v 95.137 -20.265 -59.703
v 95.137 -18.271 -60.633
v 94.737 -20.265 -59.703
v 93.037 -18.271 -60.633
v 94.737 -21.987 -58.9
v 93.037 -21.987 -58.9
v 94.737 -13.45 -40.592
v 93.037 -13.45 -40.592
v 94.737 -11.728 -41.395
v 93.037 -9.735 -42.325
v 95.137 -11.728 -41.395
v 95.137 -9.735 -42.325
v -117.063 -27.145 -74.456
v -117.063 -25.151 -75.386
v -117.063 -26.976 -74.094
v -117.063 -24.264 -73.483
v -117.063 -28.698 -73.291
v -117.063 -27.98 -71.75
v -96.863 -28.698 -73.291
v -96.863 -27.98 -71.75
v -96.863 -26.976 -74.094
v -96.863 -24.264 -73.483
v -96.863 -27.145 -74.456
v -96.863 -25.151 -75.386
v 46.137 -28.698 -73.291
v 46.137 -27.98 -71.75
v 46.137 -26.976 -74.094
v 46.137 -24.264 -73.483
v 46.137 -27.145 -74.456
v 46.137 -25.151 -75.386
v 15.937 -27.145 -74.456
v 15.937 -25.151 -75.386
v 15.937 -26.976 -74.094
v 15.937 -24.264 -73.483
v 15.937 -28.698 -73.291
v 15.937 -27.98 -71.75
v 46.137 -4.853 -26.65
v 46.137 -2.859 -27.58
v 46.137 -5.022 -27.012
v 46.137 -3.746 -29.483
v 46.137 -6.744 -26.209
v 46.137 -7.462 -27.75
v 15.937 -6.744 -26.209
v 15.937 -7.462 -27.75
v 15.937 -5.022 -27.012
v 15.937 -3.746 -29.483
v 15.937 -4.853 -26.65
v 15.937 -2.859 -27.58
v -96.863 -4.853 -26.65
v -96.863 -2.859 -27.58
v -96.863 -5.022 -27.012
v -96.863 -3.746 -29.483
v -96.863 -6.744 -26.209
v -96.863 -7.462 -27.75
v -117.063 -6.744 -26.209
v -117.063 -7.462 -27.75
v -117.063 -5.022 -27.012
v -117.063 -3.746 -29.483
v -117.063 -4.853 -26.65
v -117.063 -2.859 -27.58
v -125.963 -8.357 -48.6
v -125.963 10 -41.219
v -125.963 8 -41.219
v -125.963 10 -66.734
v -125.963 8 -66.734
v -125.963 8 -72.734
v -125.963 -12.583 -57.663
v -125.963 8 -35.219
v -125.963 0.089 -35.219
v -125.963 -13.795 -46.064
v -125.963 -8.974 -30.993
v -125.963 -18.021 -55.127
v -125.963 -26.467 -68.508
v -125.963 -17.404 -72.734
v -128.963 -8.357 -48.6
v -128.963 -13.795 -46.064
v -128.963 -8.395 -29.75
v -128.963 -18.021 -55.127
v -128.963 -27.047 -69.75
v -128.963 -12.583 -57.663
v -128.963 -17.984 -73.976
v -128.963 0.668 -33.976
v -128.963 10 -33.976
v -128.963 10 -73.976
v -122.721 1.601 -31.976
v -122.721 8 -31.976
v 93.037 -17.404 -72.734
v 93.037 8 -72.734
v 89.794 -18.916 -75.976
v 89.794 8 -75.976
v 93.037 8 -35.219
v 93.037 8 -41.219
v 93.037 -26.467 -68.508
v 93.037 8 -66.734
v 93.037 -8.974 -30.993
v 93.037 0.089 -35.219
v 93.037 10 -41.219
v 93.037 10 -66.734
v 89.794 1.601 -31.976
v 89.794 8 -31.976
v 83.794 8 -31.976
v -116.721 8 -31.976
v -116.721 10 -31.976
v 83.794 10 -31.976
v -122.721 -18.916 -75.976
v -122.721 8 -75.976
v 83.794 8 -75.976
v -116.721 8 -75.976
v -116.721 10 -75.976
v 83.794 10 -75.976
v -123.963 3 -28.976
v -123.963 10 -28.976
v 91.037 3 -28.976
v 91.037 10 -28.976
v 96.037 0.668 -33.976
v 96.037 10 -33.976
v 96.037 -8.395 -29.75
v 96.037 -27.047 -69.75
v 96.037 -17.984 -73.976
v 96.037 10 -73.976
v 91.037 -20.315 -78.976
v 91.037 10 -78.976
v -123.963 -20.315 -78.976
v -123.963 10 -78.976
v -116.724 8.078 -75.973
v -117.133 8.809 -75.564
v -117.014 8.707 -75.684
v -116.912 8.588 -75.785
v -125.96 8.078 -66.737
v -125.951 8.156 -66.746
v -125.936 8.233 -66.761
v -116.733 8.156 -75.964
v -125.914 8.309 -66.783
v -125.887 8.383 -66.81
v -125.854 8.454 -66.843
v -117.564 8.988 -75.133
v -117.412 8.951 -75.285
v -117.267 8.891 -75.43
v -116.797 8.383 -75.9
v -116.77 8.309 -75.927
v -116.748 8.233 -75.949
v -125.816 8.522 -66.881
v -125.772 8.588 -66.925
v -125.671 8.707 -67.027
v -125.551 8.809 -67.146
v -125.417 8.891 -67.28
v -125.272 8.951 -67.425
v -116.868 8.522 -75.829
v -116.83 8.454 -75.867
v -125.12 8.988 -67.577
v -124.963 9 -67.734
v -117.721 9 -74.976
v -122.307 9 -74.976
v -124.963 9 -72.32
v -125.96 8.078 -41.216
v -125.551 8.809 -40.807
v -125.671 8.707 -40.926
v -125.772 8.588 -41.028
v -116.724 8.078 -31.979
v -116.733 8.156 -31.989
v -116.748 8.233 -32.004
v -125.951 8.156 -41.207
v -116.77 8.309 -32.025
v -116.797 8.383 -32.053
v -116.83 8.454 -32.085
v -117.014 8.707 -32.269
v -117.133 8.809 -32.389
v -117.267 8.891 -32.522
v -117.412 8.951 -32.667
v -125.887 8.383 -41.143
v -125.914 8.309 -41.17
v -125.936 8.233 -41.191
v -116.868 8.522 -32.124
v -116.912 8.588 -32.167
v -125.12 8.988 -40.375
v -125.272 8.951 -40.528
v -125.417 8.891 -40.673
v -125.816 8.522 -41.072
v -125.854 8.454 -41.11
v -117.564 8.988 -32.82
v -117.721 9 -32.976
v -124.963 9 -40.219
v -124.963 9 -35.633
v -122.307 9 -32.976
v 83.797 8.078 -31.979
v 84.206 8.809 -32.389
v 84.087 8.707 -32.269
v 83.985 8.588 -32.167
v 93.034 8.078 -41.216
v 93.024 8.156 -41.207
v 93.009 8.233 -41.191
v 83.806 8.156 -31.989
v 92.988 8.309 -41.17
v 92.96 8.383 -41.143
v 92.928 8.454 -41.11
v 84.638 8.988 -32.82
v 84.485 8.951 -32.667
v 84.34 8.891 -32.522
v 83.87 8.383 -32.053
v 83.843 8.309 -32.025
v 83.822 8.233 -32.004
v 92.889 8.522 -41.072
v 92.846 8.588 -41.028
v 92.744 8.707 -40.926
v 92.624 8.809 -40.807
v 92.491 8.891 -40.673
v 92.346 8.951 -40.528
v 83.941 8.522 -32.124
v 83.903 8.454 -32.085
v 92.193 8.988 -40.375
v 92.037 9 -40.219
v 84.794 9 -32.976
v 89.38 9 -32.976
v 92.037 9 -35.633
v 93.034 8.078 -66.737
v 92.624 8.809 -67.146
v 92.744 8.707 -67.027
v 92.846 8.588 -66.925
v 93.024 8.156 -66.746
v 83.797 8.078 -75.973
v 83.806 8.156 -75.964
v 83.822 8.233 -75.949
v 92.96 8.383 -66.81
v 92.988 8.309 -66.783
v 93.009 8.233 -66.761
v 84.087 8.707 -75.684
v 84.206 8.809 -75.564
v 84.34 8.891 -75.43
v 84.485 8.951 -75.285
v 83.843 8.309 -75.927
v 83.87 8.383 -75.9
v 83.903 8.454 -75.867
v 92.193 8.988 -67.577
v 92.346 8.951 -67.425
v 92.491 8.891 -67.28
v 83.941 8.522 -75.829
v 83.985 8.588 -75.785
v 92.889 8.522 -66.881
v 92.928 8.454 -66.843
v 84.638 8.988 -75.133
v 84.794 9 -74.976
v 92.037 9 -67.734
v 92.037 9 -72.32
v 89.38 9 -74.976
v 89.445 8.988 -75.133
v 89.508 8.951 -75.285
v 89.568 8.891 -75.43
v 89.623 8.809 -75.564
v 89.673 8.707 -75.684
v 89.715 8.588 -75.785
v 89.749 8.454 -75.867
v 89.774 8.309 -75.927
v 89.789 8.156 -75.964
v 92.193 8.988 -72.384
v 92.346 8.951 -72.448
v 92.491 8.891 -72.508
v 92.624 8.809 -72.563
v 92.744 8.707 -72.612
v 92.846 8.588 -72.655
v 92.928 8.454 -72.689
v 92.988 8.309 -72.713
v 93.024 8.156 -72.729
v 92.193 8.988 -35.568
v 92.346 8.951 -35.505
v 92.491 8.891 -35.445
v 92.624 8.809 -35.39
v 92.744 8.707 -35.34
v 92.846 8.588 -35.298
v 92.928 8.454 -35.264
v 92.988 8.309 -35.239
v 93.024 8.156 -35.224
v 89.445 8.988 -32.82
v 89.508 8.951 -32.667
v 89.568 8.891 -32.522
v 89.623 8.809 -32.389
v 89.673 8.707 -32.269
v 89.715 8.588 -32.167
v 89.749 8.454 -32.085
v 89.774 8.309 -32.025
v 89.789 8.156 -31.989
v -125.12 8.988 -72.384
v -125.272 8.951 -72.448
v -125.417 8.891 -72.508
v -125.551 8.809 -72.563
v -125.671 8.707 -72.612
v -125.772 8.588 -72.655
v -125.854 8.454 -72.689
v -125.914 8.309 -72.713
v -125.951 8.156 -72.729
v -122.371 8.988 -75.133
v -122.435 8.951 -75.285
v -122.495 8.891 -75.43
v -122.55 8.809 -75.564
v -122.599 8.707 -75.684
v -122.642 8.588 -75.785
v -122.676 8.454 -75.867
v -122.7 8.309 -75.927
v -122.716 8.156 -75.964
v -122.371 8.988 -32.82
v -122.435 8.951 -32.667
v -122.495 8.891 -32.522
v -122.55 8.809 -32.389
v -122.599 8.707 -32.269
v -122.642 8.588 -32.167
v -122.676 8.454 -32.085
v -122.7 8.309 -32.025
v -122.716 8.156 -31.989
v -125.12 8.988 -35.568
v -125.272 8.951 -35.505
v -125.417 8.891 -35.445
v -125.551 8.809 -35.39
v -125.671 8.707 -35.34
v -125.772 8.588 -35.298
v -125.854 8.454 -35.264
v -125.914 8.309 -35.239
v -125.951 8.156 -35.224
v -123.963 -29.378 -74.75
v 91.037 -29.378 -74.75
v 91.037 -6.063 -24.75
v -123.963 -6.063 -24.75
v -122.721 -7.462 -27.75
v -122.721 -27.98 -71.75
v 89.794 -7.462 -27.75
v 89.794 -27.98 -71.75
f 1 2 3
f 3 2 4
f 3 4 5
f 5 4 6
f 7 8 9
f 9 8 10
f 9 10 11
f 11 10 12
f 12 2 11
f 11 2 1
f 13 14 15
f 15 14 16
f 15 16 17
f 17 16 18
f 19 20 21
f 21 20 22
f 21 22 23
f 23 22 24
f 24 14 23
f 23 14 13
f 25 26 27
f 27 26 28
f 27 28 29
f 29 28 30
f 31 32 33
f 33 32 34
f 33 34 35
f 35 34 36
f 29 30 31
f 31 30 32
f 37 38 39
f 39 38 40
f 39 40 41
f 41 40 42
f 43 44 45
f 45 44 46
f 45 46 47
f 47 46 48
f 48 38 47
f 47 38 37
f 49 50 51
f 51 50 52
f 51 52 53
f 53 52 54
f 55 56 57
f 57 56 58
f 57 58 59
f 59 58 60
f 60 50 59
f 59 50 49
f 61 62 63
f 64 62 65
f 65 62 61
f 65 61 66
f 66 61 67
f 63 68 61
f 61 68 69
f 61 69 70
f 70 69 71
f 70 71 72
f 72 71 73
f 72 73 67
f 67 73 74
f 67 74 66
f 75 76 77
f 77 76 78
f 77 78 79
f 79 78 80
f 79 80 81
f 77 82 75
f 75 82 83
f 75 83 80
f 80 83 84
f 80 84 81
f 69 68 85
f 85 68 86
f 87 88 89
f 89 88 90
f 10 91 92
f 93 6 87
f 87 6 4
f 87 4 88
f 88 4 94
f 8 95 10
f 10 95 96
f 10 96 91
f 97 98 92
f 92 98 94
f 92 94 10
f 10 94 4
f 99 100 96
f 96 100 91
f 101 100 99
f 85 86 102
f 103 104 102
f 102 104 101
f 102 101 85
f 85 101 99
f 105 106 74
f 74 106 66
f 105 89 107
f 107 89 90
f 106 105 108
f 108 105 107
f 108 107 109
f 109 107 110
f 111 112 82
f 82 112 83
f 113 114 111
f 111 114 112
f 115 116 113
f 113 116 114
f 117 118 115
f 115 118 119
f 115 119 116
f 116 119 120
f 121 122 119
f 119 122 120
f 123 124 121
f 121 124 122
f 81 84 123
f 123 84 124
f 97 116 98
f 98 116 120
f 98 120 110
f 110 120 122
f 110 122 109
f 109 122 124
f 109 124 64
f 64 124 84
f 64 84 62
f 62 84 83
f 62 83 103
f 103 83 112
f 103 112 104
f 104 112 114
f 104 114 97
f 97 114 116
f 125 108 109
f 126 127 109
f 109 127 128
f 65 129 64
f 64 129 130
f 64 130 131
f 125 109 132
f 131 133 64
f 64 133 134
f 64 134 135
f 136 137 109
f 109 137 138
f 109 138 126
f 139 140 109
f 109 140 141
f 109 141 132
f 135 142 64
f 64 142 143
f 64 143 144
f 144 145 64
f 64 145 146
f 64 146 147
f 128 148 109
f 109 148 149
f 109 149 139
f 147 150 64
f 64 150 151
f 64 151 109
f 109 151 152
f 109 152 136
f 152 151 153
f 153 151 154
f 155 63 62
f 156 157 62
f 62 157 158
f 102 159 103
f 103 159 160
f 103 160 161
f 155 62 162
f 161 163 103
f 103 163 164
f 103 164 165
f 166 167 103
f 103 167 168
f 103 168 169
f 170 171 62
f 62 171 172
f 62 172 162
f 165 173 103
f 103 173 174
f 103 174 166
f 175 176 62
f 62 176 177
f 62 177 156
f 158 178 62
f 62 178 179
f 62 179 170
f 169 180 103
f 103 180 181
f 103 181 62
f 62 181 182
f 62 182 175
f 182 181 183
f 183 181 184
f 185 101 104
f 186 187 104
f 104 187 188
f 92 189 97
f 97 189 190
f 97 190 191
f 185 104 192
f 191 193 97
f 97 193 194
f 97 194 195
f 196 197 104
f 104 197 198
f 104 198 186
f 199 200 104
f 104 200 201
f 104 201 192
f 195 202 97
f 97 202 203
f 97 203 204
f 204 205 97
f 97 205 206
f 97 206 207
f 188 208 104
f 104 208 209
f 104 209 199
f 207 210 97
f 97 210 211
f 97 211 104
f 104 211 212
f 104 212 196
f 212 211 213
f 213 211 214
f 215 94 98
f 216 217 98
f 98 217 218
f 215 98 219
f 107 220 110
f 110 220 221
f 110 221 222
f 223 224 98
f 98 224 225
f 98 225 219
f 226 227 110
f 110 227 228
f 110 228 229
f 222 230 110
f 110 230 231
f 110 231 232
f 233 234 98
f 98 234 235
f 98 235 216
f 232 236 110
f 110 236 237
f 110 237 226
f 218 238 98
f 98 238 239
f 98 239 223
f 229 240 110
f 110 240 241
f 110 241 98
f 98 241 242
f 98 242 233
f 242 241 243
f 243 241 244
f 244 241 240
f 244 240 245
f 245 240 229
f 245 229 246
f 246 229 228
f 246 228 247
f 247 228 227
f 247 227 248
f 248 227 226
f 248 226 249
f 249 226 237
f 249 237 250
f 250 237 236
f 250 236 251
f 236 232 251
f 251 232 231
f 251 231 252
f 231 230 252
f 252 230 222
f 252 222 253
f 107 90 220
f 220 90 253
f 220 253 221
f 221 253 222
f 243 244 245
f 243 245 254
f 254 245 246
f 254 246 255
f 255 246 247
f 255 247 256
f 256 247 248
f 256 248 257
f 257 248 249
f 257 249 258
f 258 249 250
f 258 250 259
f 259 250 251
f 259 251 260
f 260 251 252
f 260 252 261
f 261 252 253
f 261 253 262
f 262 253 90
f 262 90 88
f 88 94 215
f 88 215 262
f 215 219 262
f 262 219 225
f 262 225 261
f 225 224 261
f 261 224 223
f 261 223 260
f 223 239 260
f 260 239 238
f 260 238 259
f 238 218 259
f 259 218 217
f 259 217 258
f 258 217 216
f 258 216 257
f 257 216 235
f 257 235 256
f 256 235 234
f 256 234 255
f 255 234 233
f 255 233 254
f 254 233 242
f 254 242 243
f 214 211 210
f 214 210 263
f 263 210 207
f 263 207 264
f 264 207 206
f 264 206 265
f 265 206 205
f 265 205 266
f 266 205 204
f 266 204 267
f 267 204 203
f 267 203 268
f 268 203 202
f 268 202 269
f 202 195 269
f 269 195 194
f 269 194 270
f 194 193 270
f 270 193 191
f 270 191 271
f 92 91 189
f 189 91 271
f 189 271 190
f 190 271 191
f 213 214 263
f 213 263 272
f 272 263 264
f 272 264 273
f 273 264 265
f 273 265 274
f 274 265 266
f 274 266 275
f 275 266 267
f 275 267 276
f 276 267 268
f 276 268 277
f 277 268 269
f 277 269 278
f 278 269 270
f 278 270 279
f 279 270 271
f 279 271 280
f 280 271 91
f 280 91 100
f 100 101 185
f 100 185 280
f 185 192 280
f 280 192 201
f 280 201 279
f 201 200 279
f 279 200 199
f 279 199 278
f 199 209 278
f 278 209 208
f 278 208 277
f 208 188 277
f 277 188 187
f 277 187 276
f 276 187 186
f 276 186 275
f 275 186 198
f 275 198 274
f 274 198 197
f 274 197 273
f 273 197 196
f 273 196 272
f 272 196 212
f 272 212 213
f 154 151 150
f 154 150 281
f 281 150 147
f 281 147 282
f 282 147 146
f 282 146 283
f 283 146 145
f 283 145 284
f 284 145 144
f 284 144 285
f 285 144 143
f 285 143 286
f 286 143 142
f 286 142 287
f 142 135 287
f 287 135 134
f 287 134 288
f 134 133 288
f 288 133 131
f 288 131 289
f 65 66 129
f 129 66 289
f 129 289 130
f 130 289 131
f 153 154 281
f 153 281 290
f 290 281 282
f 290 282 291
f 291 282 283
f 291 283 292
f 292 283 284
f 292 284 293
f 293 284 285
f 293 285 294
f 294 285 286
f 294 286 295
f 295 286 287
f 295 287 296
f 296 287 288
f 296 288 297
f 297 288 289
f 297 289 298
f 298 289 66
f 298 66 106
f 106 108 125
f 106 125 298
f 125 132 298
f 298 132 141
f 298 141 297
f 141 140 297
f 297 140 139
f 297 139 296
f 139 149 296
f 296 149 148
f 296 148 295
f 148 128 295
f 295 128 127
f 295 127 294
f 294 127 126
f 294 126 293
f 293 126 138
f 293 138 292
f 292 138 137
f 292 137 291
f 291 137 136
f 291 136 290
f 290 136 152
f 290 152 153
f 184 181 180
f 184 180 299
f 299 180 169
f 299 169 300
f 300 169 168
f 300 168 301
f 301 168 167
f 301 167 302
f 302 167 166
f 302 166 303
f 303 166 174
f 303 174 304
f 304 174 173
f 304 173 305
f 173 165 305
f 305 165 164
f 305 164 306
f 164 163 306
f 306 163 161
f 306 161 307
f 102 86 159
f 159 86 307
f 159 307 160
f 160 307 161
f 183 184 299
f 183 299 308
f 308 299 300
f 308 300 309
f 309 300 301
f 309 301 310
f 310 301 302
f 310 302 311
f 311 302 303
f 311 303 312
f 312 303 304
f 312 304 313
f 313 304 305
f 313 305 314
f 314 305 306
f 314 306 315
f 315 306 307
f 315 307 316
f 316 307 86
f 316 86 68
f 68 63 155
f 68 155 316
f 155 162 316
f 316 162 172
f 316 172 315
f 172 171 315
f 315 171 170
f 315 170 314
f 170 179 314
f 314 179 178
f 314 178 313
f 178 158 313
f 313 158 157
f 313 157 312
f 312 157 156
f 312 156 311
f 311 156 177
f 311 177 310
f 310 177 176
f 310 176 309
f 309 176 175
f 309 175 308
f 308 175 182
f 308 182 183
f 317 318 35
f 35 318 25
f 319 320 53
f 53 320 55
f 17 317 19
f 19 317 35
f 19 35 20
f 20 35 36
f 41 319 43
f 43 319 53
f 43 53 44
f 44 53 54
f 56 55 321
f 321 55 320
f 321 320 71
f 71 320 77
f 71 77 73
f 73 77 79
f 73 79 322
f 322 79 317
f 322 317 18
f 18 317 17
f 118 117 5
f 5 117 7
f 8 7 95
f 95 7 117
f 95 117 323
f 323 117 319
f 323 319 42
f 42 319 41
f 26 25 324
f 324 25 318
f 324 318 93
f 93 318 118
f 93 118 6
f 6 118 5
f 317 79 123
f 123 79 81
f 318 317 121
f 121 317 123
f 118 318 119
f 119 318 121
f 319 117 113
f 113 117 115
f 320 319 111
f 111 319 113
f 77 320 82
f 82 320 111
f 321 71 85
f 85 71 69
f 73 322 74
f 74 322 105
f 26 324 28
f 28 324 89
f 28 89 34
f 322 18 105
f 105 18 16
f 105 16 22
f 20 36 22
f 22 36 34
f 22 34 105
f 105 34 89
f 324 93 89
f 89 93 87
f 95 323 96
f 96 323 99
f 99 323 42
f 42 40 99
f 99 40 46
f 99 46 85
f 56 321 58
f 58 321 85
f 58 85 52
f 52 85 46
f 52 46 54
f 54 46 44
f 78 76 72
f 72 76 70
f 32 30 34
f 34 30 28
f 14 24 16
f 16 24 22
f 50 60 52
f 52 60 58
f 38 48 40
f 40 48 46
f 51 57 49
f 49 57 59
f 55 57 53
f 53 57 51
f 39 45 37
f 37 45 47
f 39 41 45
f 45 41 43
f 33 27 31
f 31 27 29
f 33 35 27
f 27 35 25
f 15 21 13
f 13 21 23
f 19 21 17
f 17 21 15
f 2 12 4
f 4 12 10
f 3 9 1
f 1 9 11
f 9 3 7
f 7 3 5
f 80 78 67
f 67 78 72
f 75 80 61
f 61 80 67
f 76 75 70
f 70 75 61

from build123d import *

# Parameters (mm, degrees)
SALIENTE_EXTRUIR2_DEPTH = 3
SALIENTE_EXTRUIR3_DEPTH = 7
CORTAR_EXTRUIR1_DEPTH   = 19
CROQUIS5_W              = 231.218781219
CROQUIS5_H              = 62.937062938
CORTAR_EXTRUIR2_DEPTH   = 3
SALIENTE_EXTRUIR4_DEPTH = 35
SALIENTE_EXTRUIR5_DEPTH = 1
REDONDEO4_R             = 1
CORTAR_EXTRUIR3_DEPTH   = 237
SALIENTE_EXTRUIR6_DEPTH = 10
CORTAR_EXTRUIR4_DEPTH   = 10
CROQUIS14_W             = 20.2
CROQUIS14_H             = 4.1
CROQUIS14_W_2           = 30.2
CORTAR_EXTRUIR5_DEPTH   = 2.1
CROQUIS15_W             = 30.2
CROQUIS15_H             = 4.1
CROQUIS15_W_2           = 20.2
CORTAR_EXTRUIR6_DEPTH   = 2.1
CROQUIS16_W             = 20.2
CROQUIS16_H             = 1.9
CROQUIS16_W_2           = 30.2
SALIENTE_EXTRUIR7_DEPTH = 0.4
CROQUIS17_W             = 30.2
CROQUIS17_H             = 1.9
CROQUIS17_W_2           = 20.2
SALIENTE_EXTRUIR8_DEPTH = 0.4
CORTAR_EXTRUIR7_DEPTH   = 2.1
SALIENTE_EXTRUIR9_DEPTH = 0.4
CORTAR_EXTRUIR8_DEPTH   = 10


with BuildPart() as part:
    # Croquis2 → Saliente-Extruir2 (new body)
    with BuildSketch(Plane(origin=(0, 0, 0), x_dir=(1, 0, 0), z_dir=(0, 1, 0))):
        Polygon((-128.963414634, 73.976399667), (-123.963414634, 78.976399667), (91.036585366, 78.976399667), (96.036585366, 73.976399667), (96.036585366, 33.976399667), (91.036585366, 28.976399667), (-123.963414634, 28.976399667), (-128.963414634, 33.976399667), align=None)
    extrude(amount=SALIENTE_EXTRUIR2_DEPTH)

    # Croquis3 → Saliente-Extruir3 (add)
    with BuildSketch(Plane(origin=(0, 3, 0), x_dir=(1, 0, 0), z_dir=(0, 1, 0))):
        Polygon((-123.963414634, 78.976399667), (-128.963414634, 73.976399667), (-128.963414634, 33.976399667), (-123.963414634, 28.976399667), (91.036585366, 28.976399667), (96.036585366, 33.976399667), (96.036585366, 73.976399667), (91.036585366, 78.976399667), align=None)
        Polygon((90.208158241, 76.976399667), (-123.134987509, 76.976399667), (-126.963414634, 73.147972543), (-126.963414634, 34.804826792), (-123.134987509, 30.976399667), (90.208158241, 30.976399667), (94.036585366, 34.804826792), (94.036585366, 73.147972543), align=None, mode=Mode.SUBTRACT)
    extrude(amount=SALIENTE_EXTRUIR3_DEPTH)

    # Croquis4 → Cortar-Extruir1 (cut)
    with BuildSketch(Plane.XZ):
        with BuildLine():
            ThreePointArc((-103.963414634, -47.176399667), (-106.438288368, -48.201525933), (-107.463414634, -50.676399667))
            Line((-107.463414634, -50.676399667), (-103.963414634, -50.676399667))
            Line((-103.963414634, -50.676399667), (-103.963414634, -47.176399667))
        make_face()
        with BuildLine():
            Line((-103.963414634, -50.676399667), (-107.463414634, -50.676399667))
            ThreePointArc((-107.463414634, -50.676399667), (-106.438288368, -53.151273402), (-103.963414634, -54.176399667))
            Line((-103.963414634, -54.176399667), (-103.963414634, -50.676399667))
        make_face()
        with BuildLine():
            Line((-103.963414634, -47.176399667), (-103.963414634, -50.676399667))
            Line((-103.963414634, -50.676399667), (-100.463414634, -50.676399667))
            ThreePointArc((-100.463414634, -50.676399667), (-101.4885409, -48.201525933), (-103.963414634, -47.176399667))
        make_face()
        with BuildLine():
            Line((-100.463414634, -50.676399667), (-103.963414634, -50.676399667))
            Line((-103.963414634, -50.676399667), (-103.963414634, -54.176399667))
            ThreePointArc((-103.963414634, -54.176399667), (-101.4885409, -53.151273402), (-100.463414634, -50.676399667))
        make_face()
    extrude(amount=-CORTAR_EXTRUIR1_DEPTH, mode=Mode.SUBTRACT)

    # Croquis5 → Cortar-Extruir2 (cut)
    with BuildSketch(Plane.XZ):
        with Locations((-15.039838211, -54.605736692)):
            Rectangle(CROQUIS5_W, CROQUIS5_H)
    extrude(amount=-CORTAR_EXTRUIR2_DEPTH, mode=Mode.SUBTRACT)

    # Croquis6 → Saliente-Extruir4 (add)
    with BuildSketch(Plane(origin=(0, 10, 0), x_dir=(1, 0, 0), z_dir=(0, 1, 0))):
        Polygon((-128.963414634, 33.976399667), (-123.963414634, 28.976399667), (91.036585366, 28.976399667), (96.036585366, 33.976399667), (96.036585366, 73.976399667), (91.036585366, 78.976399667), (-123.963414634, 78.976399667), (-128.963414634, 73.976399667), align=None)
        Polygon((93.036585366, 35.219040355), (89.793944679, 31.976399667), (-122.720773947, 31.976399667), (-125.963414634, 35.219040355), (-125.963414634, 72.73375898), (-122.720773947, 75.976399667), (89.793944679, 75.976399667), (93.036585366, 72.73375898), align=None, mode=Mode.SUBTRACT)
    extrude(amount=-SALIENTE_EXTRUIR4_DEPTH)

    # Croquis7 → Saliente-Extruir5 (add)
    with BuildSketch(Plane(origin=(0, 10, 0), x_dir=(1, 0, 0), z_dir=(0, 1, 0))):
        Polygon((-125.963414634, 66.73375898), (-116.720773947, 75.976399667), (-122.720773947, 75.976399667), (-125.963414634, 72.73375898), align=None)
        Polygon((-125.963414634, 41.219040355), (-116.720773947, 31.976399667), (-122.720773947, 31.976399667), (-125.963414634, 35.219040355), align=None)
        Polygon((93.036585366, 41.219040355), (83.793944679, 31.976399667), (89.793944679, 31.976399667), (93.036585366, 35.219040355), align=None)
        Polygon((83.793944679, 75.976399667), (93.036585366, 66.73375898), (93.036585366, 72.73375898), (89.793944679, 75.976399667), align=None)
    extrude(amount=-SALIENTE_EXTRUIR5_DEPTH)

    # Redondeo4
    redondeo4_edges = [part.edges().sort_by_distance(p)[0] for p in [
        (-125.963414634, 9, -69.73375898),
        (-124.342094291, 9, -74.355079324),
        (-119.720773947, 9, -75.976399667),
        (-125.963414634, 9, -38.219040355),
        (-119.720773947, 9, -31.976399667),
        (-124.342094291, 9, -33.597720011),
        (93.036585366, 9, -38.219040355),
        (91.415265022, 9, -33.597720011),
        (86.793944679, 9, -31.976399667),
        (86.793944679, 9, -75.976399667),
        (91.415265022, 9, -74.355079324),
        (93.036585366, 9, -69.73375898),
    ]]
    fillet(redondeo4_edges, radius=REDONDEO4_R)

    # Croquis8 → Cortar-Extruir3 (cut)
    with BuildSketch(Plane.ZY.offset(128.963414634)):
        Polygon((-73.976399667, -25), (-73.976399667, -17.983844617), (-78.976399667, -20.315382908), (-78.976399667, -25), align=None)
        Polygon((-33.976399667, -25), (-33.976399667, 0.668461709), (-73.976399667, -17.983844617), (-73.976399667, -25), align=None)
        Polygon((-28.976399667, -25), (-28.976399667, 3), (-33.976399667, 0.668461709), (-33.976399667, -25), align=None)
    extrude(amount=-CORTAR_EXTRUIR3_DEPTH, mode=Mode.SUBTRACT)

    # Croquis9 → Saliente-Extruir6 (add)
    with BuildSketch(Plane(origin=(0, 13.562786388, -6.324431159), x_dir=(1, 0, 0), z_dir=(0, -0.906307787, 0.422618262))):
        Polygon((-128.963414634, -30.510571468), (-123.963414634, -24.993681874), (91.036585366, -24.993681874), (96.036585366, -30.510571468), (96.036585366, -74.645688227), (91.036585366, -80.162577822), (-123.963414634, -80.162577822), (-128.963414634, -74.645688227), align=None)
        Polygon((-125.963414634, -31.881673764), (-125.963414634, -73.274585932), (-122.720773947, -76.852444065), (89.793944679, -76.852444065), (93.036585366, -73.274585932), (93.036585366, -31.881673764), (89.793944679, -28.303815631), (-122.720773947, -28.303815631), align=None, mode=Mode.SUBTRACT)
    extrude(amount=SALIENTE_EXTRUIR6_DEPTH)

    # Croquis13 → Cortar-Extruir4 (cut)
    with BuildSketch(Plane.ZY.offset(128.963414634)):
        Polygon((-52.034030749, -12.823115041), (-50.595453573, -15.90815375), (-46.970222425, -14.217680703), (-48.408799601, -11.132641994), align=None)
        Polygon((-55.659261897, -14.513588088), (-54.220684722, -17.598626797), (-50.595453573, -15.90815375), (-52.034030749, -12.823115041), align=None)
    extrude(amount=-CORTAR_EXTRUIR4_DEPTH, mode=Mode.SUBTRACT)

    # Croquis14 → Cortar-Extruir5 (cut)
    with BuildSketch(Plane(origin=(0, -32.479246321, -69.651968509), x_dir=(1, 0, 0), z_dir=(0, 0.422618262, 0.906307787))):
        with Locations((-106.963414634, 7.01487902)):
            Rectangle(CROQUIS14_W, CROQUIS14_H)
        with Locations((31.036585366, 7.01487902)):
            Rectangle(CROQUIS14_W_2, CROQUIS14_H)
    extrude(amount=-CORTAR_EXTRUIR5_DEPTH, mode=Mode.SUBTRACT)

    # Croquis15 → Cortar-Extruir6 (cut)
    with BuildSketch(Plane(origin=(0, -11.961709362, -25.651968509), x_dir=(-1, 0, 0), z_dir=(0, -0.422618262, -0.906307787))):
        with Locations((-31.036585366, 7.01487902)):
            Rectangle(CROQUIS15_W, CROQUIS15_H)
        with Locations((106.963414634, 7.01487902)):
            Rectangle(CROQUIS15_W_2, CROQUIS15_H)
    extrude(amount=-CORTAR_EXTRUIR6_DEPTH, mode=Mode.SUBTRACT)

    # Croquis16 → Saliente-Extruir7 (add)
    with BuildSketch(Plane(origin=(0, -11.074211013, -23.748722156), x_dir=(-1, 0, 0), z_dir=(0, -0.422618262, -0.906307787))):
        with Locations((106.963414634, 5.91487902)):
            Rectangle(CROQUIS16_W, CROQUIS16_H)
        with Locations((-31.036585366, 5.91487902)):
            Rectangle(CROQUIS16_W_2, CROQUIS16_H)
    extrude(amount=SALIENTE_EXTRUIR7_DEPTH)

    # Croquis17 → Saliente-Extruir8 (add)
    with BuildSketch(Plane(origin=(0, -33.366744671, -71.555214862), x_dir=(1, 0, 0), z_dir=(0, 0.422618262, 0.906307787))):
        with Locations((31.036585366, 5.91487902)):
            Rectangle(CROQUIS17_W, CROQUIS17_H)
        with Locations((-106.963414634, 5.91487902)):
            Rectangle(CROQUIS17_W_2, CROQUIS17_H)
    extrude(amount=SALIENTE_EXTRUIR8_DEPTH)

    # Croquis18 → Cortar-Extruir7 (cut)
    with BuildSketch(Plane.ZY.offset(-93.036585366)):
        Polygon((-58.899894466, -21.987333973), (-60.632629339, -18.271472046), (-42.325212041, -9.734583159), (-40.592477167, -13.450445086), align=None)
    extrude(amount=-CORTAR_EXTRUIR7_DEPTH, mode=Mode.SUBTRACT)

    # Croquis19 → Saliente-Extruir9 (add)
    with BuildSketch(Plane.ZY.offset(-95.136585366)):
        Polygon((-58.899894466, -21.987333973), (-59.702869163, -20.265349177), (-41.395451865, -11.72846029), (-40.592477167, -13.450445086), align=None)
    extrude(amount=SALIENTE_EXTRUIR9_DEPTH)

    # Croquis20 → Cortar-Extruir8 (cut)
    with BuildSketch(Plane.ZY.offset(128.963414634)):
        Polygon((-48.599624209, -8.357215719), (-53.131163144, -10.470307028), (-52.034030749, -12.823115041), (-48.408799601, -11.132641994), (-46.970222425, -14.217680703), (-46.063914638, -13.795062441), align=None)
        Polygon((-57.662702079, -12.583398337), (-55.126992509, -18.021245059), (-54.220684722, -17.598626797), (-55.659261897, -14.513588088), (-52.034030749, -12.823115041), (-53.131163144, -10.470307028), align=None)
    extrude(amount=-CORTAR_EXTRUIR8_DEPTH, mode=Mode.SUBTRACT)


solid = part.part
